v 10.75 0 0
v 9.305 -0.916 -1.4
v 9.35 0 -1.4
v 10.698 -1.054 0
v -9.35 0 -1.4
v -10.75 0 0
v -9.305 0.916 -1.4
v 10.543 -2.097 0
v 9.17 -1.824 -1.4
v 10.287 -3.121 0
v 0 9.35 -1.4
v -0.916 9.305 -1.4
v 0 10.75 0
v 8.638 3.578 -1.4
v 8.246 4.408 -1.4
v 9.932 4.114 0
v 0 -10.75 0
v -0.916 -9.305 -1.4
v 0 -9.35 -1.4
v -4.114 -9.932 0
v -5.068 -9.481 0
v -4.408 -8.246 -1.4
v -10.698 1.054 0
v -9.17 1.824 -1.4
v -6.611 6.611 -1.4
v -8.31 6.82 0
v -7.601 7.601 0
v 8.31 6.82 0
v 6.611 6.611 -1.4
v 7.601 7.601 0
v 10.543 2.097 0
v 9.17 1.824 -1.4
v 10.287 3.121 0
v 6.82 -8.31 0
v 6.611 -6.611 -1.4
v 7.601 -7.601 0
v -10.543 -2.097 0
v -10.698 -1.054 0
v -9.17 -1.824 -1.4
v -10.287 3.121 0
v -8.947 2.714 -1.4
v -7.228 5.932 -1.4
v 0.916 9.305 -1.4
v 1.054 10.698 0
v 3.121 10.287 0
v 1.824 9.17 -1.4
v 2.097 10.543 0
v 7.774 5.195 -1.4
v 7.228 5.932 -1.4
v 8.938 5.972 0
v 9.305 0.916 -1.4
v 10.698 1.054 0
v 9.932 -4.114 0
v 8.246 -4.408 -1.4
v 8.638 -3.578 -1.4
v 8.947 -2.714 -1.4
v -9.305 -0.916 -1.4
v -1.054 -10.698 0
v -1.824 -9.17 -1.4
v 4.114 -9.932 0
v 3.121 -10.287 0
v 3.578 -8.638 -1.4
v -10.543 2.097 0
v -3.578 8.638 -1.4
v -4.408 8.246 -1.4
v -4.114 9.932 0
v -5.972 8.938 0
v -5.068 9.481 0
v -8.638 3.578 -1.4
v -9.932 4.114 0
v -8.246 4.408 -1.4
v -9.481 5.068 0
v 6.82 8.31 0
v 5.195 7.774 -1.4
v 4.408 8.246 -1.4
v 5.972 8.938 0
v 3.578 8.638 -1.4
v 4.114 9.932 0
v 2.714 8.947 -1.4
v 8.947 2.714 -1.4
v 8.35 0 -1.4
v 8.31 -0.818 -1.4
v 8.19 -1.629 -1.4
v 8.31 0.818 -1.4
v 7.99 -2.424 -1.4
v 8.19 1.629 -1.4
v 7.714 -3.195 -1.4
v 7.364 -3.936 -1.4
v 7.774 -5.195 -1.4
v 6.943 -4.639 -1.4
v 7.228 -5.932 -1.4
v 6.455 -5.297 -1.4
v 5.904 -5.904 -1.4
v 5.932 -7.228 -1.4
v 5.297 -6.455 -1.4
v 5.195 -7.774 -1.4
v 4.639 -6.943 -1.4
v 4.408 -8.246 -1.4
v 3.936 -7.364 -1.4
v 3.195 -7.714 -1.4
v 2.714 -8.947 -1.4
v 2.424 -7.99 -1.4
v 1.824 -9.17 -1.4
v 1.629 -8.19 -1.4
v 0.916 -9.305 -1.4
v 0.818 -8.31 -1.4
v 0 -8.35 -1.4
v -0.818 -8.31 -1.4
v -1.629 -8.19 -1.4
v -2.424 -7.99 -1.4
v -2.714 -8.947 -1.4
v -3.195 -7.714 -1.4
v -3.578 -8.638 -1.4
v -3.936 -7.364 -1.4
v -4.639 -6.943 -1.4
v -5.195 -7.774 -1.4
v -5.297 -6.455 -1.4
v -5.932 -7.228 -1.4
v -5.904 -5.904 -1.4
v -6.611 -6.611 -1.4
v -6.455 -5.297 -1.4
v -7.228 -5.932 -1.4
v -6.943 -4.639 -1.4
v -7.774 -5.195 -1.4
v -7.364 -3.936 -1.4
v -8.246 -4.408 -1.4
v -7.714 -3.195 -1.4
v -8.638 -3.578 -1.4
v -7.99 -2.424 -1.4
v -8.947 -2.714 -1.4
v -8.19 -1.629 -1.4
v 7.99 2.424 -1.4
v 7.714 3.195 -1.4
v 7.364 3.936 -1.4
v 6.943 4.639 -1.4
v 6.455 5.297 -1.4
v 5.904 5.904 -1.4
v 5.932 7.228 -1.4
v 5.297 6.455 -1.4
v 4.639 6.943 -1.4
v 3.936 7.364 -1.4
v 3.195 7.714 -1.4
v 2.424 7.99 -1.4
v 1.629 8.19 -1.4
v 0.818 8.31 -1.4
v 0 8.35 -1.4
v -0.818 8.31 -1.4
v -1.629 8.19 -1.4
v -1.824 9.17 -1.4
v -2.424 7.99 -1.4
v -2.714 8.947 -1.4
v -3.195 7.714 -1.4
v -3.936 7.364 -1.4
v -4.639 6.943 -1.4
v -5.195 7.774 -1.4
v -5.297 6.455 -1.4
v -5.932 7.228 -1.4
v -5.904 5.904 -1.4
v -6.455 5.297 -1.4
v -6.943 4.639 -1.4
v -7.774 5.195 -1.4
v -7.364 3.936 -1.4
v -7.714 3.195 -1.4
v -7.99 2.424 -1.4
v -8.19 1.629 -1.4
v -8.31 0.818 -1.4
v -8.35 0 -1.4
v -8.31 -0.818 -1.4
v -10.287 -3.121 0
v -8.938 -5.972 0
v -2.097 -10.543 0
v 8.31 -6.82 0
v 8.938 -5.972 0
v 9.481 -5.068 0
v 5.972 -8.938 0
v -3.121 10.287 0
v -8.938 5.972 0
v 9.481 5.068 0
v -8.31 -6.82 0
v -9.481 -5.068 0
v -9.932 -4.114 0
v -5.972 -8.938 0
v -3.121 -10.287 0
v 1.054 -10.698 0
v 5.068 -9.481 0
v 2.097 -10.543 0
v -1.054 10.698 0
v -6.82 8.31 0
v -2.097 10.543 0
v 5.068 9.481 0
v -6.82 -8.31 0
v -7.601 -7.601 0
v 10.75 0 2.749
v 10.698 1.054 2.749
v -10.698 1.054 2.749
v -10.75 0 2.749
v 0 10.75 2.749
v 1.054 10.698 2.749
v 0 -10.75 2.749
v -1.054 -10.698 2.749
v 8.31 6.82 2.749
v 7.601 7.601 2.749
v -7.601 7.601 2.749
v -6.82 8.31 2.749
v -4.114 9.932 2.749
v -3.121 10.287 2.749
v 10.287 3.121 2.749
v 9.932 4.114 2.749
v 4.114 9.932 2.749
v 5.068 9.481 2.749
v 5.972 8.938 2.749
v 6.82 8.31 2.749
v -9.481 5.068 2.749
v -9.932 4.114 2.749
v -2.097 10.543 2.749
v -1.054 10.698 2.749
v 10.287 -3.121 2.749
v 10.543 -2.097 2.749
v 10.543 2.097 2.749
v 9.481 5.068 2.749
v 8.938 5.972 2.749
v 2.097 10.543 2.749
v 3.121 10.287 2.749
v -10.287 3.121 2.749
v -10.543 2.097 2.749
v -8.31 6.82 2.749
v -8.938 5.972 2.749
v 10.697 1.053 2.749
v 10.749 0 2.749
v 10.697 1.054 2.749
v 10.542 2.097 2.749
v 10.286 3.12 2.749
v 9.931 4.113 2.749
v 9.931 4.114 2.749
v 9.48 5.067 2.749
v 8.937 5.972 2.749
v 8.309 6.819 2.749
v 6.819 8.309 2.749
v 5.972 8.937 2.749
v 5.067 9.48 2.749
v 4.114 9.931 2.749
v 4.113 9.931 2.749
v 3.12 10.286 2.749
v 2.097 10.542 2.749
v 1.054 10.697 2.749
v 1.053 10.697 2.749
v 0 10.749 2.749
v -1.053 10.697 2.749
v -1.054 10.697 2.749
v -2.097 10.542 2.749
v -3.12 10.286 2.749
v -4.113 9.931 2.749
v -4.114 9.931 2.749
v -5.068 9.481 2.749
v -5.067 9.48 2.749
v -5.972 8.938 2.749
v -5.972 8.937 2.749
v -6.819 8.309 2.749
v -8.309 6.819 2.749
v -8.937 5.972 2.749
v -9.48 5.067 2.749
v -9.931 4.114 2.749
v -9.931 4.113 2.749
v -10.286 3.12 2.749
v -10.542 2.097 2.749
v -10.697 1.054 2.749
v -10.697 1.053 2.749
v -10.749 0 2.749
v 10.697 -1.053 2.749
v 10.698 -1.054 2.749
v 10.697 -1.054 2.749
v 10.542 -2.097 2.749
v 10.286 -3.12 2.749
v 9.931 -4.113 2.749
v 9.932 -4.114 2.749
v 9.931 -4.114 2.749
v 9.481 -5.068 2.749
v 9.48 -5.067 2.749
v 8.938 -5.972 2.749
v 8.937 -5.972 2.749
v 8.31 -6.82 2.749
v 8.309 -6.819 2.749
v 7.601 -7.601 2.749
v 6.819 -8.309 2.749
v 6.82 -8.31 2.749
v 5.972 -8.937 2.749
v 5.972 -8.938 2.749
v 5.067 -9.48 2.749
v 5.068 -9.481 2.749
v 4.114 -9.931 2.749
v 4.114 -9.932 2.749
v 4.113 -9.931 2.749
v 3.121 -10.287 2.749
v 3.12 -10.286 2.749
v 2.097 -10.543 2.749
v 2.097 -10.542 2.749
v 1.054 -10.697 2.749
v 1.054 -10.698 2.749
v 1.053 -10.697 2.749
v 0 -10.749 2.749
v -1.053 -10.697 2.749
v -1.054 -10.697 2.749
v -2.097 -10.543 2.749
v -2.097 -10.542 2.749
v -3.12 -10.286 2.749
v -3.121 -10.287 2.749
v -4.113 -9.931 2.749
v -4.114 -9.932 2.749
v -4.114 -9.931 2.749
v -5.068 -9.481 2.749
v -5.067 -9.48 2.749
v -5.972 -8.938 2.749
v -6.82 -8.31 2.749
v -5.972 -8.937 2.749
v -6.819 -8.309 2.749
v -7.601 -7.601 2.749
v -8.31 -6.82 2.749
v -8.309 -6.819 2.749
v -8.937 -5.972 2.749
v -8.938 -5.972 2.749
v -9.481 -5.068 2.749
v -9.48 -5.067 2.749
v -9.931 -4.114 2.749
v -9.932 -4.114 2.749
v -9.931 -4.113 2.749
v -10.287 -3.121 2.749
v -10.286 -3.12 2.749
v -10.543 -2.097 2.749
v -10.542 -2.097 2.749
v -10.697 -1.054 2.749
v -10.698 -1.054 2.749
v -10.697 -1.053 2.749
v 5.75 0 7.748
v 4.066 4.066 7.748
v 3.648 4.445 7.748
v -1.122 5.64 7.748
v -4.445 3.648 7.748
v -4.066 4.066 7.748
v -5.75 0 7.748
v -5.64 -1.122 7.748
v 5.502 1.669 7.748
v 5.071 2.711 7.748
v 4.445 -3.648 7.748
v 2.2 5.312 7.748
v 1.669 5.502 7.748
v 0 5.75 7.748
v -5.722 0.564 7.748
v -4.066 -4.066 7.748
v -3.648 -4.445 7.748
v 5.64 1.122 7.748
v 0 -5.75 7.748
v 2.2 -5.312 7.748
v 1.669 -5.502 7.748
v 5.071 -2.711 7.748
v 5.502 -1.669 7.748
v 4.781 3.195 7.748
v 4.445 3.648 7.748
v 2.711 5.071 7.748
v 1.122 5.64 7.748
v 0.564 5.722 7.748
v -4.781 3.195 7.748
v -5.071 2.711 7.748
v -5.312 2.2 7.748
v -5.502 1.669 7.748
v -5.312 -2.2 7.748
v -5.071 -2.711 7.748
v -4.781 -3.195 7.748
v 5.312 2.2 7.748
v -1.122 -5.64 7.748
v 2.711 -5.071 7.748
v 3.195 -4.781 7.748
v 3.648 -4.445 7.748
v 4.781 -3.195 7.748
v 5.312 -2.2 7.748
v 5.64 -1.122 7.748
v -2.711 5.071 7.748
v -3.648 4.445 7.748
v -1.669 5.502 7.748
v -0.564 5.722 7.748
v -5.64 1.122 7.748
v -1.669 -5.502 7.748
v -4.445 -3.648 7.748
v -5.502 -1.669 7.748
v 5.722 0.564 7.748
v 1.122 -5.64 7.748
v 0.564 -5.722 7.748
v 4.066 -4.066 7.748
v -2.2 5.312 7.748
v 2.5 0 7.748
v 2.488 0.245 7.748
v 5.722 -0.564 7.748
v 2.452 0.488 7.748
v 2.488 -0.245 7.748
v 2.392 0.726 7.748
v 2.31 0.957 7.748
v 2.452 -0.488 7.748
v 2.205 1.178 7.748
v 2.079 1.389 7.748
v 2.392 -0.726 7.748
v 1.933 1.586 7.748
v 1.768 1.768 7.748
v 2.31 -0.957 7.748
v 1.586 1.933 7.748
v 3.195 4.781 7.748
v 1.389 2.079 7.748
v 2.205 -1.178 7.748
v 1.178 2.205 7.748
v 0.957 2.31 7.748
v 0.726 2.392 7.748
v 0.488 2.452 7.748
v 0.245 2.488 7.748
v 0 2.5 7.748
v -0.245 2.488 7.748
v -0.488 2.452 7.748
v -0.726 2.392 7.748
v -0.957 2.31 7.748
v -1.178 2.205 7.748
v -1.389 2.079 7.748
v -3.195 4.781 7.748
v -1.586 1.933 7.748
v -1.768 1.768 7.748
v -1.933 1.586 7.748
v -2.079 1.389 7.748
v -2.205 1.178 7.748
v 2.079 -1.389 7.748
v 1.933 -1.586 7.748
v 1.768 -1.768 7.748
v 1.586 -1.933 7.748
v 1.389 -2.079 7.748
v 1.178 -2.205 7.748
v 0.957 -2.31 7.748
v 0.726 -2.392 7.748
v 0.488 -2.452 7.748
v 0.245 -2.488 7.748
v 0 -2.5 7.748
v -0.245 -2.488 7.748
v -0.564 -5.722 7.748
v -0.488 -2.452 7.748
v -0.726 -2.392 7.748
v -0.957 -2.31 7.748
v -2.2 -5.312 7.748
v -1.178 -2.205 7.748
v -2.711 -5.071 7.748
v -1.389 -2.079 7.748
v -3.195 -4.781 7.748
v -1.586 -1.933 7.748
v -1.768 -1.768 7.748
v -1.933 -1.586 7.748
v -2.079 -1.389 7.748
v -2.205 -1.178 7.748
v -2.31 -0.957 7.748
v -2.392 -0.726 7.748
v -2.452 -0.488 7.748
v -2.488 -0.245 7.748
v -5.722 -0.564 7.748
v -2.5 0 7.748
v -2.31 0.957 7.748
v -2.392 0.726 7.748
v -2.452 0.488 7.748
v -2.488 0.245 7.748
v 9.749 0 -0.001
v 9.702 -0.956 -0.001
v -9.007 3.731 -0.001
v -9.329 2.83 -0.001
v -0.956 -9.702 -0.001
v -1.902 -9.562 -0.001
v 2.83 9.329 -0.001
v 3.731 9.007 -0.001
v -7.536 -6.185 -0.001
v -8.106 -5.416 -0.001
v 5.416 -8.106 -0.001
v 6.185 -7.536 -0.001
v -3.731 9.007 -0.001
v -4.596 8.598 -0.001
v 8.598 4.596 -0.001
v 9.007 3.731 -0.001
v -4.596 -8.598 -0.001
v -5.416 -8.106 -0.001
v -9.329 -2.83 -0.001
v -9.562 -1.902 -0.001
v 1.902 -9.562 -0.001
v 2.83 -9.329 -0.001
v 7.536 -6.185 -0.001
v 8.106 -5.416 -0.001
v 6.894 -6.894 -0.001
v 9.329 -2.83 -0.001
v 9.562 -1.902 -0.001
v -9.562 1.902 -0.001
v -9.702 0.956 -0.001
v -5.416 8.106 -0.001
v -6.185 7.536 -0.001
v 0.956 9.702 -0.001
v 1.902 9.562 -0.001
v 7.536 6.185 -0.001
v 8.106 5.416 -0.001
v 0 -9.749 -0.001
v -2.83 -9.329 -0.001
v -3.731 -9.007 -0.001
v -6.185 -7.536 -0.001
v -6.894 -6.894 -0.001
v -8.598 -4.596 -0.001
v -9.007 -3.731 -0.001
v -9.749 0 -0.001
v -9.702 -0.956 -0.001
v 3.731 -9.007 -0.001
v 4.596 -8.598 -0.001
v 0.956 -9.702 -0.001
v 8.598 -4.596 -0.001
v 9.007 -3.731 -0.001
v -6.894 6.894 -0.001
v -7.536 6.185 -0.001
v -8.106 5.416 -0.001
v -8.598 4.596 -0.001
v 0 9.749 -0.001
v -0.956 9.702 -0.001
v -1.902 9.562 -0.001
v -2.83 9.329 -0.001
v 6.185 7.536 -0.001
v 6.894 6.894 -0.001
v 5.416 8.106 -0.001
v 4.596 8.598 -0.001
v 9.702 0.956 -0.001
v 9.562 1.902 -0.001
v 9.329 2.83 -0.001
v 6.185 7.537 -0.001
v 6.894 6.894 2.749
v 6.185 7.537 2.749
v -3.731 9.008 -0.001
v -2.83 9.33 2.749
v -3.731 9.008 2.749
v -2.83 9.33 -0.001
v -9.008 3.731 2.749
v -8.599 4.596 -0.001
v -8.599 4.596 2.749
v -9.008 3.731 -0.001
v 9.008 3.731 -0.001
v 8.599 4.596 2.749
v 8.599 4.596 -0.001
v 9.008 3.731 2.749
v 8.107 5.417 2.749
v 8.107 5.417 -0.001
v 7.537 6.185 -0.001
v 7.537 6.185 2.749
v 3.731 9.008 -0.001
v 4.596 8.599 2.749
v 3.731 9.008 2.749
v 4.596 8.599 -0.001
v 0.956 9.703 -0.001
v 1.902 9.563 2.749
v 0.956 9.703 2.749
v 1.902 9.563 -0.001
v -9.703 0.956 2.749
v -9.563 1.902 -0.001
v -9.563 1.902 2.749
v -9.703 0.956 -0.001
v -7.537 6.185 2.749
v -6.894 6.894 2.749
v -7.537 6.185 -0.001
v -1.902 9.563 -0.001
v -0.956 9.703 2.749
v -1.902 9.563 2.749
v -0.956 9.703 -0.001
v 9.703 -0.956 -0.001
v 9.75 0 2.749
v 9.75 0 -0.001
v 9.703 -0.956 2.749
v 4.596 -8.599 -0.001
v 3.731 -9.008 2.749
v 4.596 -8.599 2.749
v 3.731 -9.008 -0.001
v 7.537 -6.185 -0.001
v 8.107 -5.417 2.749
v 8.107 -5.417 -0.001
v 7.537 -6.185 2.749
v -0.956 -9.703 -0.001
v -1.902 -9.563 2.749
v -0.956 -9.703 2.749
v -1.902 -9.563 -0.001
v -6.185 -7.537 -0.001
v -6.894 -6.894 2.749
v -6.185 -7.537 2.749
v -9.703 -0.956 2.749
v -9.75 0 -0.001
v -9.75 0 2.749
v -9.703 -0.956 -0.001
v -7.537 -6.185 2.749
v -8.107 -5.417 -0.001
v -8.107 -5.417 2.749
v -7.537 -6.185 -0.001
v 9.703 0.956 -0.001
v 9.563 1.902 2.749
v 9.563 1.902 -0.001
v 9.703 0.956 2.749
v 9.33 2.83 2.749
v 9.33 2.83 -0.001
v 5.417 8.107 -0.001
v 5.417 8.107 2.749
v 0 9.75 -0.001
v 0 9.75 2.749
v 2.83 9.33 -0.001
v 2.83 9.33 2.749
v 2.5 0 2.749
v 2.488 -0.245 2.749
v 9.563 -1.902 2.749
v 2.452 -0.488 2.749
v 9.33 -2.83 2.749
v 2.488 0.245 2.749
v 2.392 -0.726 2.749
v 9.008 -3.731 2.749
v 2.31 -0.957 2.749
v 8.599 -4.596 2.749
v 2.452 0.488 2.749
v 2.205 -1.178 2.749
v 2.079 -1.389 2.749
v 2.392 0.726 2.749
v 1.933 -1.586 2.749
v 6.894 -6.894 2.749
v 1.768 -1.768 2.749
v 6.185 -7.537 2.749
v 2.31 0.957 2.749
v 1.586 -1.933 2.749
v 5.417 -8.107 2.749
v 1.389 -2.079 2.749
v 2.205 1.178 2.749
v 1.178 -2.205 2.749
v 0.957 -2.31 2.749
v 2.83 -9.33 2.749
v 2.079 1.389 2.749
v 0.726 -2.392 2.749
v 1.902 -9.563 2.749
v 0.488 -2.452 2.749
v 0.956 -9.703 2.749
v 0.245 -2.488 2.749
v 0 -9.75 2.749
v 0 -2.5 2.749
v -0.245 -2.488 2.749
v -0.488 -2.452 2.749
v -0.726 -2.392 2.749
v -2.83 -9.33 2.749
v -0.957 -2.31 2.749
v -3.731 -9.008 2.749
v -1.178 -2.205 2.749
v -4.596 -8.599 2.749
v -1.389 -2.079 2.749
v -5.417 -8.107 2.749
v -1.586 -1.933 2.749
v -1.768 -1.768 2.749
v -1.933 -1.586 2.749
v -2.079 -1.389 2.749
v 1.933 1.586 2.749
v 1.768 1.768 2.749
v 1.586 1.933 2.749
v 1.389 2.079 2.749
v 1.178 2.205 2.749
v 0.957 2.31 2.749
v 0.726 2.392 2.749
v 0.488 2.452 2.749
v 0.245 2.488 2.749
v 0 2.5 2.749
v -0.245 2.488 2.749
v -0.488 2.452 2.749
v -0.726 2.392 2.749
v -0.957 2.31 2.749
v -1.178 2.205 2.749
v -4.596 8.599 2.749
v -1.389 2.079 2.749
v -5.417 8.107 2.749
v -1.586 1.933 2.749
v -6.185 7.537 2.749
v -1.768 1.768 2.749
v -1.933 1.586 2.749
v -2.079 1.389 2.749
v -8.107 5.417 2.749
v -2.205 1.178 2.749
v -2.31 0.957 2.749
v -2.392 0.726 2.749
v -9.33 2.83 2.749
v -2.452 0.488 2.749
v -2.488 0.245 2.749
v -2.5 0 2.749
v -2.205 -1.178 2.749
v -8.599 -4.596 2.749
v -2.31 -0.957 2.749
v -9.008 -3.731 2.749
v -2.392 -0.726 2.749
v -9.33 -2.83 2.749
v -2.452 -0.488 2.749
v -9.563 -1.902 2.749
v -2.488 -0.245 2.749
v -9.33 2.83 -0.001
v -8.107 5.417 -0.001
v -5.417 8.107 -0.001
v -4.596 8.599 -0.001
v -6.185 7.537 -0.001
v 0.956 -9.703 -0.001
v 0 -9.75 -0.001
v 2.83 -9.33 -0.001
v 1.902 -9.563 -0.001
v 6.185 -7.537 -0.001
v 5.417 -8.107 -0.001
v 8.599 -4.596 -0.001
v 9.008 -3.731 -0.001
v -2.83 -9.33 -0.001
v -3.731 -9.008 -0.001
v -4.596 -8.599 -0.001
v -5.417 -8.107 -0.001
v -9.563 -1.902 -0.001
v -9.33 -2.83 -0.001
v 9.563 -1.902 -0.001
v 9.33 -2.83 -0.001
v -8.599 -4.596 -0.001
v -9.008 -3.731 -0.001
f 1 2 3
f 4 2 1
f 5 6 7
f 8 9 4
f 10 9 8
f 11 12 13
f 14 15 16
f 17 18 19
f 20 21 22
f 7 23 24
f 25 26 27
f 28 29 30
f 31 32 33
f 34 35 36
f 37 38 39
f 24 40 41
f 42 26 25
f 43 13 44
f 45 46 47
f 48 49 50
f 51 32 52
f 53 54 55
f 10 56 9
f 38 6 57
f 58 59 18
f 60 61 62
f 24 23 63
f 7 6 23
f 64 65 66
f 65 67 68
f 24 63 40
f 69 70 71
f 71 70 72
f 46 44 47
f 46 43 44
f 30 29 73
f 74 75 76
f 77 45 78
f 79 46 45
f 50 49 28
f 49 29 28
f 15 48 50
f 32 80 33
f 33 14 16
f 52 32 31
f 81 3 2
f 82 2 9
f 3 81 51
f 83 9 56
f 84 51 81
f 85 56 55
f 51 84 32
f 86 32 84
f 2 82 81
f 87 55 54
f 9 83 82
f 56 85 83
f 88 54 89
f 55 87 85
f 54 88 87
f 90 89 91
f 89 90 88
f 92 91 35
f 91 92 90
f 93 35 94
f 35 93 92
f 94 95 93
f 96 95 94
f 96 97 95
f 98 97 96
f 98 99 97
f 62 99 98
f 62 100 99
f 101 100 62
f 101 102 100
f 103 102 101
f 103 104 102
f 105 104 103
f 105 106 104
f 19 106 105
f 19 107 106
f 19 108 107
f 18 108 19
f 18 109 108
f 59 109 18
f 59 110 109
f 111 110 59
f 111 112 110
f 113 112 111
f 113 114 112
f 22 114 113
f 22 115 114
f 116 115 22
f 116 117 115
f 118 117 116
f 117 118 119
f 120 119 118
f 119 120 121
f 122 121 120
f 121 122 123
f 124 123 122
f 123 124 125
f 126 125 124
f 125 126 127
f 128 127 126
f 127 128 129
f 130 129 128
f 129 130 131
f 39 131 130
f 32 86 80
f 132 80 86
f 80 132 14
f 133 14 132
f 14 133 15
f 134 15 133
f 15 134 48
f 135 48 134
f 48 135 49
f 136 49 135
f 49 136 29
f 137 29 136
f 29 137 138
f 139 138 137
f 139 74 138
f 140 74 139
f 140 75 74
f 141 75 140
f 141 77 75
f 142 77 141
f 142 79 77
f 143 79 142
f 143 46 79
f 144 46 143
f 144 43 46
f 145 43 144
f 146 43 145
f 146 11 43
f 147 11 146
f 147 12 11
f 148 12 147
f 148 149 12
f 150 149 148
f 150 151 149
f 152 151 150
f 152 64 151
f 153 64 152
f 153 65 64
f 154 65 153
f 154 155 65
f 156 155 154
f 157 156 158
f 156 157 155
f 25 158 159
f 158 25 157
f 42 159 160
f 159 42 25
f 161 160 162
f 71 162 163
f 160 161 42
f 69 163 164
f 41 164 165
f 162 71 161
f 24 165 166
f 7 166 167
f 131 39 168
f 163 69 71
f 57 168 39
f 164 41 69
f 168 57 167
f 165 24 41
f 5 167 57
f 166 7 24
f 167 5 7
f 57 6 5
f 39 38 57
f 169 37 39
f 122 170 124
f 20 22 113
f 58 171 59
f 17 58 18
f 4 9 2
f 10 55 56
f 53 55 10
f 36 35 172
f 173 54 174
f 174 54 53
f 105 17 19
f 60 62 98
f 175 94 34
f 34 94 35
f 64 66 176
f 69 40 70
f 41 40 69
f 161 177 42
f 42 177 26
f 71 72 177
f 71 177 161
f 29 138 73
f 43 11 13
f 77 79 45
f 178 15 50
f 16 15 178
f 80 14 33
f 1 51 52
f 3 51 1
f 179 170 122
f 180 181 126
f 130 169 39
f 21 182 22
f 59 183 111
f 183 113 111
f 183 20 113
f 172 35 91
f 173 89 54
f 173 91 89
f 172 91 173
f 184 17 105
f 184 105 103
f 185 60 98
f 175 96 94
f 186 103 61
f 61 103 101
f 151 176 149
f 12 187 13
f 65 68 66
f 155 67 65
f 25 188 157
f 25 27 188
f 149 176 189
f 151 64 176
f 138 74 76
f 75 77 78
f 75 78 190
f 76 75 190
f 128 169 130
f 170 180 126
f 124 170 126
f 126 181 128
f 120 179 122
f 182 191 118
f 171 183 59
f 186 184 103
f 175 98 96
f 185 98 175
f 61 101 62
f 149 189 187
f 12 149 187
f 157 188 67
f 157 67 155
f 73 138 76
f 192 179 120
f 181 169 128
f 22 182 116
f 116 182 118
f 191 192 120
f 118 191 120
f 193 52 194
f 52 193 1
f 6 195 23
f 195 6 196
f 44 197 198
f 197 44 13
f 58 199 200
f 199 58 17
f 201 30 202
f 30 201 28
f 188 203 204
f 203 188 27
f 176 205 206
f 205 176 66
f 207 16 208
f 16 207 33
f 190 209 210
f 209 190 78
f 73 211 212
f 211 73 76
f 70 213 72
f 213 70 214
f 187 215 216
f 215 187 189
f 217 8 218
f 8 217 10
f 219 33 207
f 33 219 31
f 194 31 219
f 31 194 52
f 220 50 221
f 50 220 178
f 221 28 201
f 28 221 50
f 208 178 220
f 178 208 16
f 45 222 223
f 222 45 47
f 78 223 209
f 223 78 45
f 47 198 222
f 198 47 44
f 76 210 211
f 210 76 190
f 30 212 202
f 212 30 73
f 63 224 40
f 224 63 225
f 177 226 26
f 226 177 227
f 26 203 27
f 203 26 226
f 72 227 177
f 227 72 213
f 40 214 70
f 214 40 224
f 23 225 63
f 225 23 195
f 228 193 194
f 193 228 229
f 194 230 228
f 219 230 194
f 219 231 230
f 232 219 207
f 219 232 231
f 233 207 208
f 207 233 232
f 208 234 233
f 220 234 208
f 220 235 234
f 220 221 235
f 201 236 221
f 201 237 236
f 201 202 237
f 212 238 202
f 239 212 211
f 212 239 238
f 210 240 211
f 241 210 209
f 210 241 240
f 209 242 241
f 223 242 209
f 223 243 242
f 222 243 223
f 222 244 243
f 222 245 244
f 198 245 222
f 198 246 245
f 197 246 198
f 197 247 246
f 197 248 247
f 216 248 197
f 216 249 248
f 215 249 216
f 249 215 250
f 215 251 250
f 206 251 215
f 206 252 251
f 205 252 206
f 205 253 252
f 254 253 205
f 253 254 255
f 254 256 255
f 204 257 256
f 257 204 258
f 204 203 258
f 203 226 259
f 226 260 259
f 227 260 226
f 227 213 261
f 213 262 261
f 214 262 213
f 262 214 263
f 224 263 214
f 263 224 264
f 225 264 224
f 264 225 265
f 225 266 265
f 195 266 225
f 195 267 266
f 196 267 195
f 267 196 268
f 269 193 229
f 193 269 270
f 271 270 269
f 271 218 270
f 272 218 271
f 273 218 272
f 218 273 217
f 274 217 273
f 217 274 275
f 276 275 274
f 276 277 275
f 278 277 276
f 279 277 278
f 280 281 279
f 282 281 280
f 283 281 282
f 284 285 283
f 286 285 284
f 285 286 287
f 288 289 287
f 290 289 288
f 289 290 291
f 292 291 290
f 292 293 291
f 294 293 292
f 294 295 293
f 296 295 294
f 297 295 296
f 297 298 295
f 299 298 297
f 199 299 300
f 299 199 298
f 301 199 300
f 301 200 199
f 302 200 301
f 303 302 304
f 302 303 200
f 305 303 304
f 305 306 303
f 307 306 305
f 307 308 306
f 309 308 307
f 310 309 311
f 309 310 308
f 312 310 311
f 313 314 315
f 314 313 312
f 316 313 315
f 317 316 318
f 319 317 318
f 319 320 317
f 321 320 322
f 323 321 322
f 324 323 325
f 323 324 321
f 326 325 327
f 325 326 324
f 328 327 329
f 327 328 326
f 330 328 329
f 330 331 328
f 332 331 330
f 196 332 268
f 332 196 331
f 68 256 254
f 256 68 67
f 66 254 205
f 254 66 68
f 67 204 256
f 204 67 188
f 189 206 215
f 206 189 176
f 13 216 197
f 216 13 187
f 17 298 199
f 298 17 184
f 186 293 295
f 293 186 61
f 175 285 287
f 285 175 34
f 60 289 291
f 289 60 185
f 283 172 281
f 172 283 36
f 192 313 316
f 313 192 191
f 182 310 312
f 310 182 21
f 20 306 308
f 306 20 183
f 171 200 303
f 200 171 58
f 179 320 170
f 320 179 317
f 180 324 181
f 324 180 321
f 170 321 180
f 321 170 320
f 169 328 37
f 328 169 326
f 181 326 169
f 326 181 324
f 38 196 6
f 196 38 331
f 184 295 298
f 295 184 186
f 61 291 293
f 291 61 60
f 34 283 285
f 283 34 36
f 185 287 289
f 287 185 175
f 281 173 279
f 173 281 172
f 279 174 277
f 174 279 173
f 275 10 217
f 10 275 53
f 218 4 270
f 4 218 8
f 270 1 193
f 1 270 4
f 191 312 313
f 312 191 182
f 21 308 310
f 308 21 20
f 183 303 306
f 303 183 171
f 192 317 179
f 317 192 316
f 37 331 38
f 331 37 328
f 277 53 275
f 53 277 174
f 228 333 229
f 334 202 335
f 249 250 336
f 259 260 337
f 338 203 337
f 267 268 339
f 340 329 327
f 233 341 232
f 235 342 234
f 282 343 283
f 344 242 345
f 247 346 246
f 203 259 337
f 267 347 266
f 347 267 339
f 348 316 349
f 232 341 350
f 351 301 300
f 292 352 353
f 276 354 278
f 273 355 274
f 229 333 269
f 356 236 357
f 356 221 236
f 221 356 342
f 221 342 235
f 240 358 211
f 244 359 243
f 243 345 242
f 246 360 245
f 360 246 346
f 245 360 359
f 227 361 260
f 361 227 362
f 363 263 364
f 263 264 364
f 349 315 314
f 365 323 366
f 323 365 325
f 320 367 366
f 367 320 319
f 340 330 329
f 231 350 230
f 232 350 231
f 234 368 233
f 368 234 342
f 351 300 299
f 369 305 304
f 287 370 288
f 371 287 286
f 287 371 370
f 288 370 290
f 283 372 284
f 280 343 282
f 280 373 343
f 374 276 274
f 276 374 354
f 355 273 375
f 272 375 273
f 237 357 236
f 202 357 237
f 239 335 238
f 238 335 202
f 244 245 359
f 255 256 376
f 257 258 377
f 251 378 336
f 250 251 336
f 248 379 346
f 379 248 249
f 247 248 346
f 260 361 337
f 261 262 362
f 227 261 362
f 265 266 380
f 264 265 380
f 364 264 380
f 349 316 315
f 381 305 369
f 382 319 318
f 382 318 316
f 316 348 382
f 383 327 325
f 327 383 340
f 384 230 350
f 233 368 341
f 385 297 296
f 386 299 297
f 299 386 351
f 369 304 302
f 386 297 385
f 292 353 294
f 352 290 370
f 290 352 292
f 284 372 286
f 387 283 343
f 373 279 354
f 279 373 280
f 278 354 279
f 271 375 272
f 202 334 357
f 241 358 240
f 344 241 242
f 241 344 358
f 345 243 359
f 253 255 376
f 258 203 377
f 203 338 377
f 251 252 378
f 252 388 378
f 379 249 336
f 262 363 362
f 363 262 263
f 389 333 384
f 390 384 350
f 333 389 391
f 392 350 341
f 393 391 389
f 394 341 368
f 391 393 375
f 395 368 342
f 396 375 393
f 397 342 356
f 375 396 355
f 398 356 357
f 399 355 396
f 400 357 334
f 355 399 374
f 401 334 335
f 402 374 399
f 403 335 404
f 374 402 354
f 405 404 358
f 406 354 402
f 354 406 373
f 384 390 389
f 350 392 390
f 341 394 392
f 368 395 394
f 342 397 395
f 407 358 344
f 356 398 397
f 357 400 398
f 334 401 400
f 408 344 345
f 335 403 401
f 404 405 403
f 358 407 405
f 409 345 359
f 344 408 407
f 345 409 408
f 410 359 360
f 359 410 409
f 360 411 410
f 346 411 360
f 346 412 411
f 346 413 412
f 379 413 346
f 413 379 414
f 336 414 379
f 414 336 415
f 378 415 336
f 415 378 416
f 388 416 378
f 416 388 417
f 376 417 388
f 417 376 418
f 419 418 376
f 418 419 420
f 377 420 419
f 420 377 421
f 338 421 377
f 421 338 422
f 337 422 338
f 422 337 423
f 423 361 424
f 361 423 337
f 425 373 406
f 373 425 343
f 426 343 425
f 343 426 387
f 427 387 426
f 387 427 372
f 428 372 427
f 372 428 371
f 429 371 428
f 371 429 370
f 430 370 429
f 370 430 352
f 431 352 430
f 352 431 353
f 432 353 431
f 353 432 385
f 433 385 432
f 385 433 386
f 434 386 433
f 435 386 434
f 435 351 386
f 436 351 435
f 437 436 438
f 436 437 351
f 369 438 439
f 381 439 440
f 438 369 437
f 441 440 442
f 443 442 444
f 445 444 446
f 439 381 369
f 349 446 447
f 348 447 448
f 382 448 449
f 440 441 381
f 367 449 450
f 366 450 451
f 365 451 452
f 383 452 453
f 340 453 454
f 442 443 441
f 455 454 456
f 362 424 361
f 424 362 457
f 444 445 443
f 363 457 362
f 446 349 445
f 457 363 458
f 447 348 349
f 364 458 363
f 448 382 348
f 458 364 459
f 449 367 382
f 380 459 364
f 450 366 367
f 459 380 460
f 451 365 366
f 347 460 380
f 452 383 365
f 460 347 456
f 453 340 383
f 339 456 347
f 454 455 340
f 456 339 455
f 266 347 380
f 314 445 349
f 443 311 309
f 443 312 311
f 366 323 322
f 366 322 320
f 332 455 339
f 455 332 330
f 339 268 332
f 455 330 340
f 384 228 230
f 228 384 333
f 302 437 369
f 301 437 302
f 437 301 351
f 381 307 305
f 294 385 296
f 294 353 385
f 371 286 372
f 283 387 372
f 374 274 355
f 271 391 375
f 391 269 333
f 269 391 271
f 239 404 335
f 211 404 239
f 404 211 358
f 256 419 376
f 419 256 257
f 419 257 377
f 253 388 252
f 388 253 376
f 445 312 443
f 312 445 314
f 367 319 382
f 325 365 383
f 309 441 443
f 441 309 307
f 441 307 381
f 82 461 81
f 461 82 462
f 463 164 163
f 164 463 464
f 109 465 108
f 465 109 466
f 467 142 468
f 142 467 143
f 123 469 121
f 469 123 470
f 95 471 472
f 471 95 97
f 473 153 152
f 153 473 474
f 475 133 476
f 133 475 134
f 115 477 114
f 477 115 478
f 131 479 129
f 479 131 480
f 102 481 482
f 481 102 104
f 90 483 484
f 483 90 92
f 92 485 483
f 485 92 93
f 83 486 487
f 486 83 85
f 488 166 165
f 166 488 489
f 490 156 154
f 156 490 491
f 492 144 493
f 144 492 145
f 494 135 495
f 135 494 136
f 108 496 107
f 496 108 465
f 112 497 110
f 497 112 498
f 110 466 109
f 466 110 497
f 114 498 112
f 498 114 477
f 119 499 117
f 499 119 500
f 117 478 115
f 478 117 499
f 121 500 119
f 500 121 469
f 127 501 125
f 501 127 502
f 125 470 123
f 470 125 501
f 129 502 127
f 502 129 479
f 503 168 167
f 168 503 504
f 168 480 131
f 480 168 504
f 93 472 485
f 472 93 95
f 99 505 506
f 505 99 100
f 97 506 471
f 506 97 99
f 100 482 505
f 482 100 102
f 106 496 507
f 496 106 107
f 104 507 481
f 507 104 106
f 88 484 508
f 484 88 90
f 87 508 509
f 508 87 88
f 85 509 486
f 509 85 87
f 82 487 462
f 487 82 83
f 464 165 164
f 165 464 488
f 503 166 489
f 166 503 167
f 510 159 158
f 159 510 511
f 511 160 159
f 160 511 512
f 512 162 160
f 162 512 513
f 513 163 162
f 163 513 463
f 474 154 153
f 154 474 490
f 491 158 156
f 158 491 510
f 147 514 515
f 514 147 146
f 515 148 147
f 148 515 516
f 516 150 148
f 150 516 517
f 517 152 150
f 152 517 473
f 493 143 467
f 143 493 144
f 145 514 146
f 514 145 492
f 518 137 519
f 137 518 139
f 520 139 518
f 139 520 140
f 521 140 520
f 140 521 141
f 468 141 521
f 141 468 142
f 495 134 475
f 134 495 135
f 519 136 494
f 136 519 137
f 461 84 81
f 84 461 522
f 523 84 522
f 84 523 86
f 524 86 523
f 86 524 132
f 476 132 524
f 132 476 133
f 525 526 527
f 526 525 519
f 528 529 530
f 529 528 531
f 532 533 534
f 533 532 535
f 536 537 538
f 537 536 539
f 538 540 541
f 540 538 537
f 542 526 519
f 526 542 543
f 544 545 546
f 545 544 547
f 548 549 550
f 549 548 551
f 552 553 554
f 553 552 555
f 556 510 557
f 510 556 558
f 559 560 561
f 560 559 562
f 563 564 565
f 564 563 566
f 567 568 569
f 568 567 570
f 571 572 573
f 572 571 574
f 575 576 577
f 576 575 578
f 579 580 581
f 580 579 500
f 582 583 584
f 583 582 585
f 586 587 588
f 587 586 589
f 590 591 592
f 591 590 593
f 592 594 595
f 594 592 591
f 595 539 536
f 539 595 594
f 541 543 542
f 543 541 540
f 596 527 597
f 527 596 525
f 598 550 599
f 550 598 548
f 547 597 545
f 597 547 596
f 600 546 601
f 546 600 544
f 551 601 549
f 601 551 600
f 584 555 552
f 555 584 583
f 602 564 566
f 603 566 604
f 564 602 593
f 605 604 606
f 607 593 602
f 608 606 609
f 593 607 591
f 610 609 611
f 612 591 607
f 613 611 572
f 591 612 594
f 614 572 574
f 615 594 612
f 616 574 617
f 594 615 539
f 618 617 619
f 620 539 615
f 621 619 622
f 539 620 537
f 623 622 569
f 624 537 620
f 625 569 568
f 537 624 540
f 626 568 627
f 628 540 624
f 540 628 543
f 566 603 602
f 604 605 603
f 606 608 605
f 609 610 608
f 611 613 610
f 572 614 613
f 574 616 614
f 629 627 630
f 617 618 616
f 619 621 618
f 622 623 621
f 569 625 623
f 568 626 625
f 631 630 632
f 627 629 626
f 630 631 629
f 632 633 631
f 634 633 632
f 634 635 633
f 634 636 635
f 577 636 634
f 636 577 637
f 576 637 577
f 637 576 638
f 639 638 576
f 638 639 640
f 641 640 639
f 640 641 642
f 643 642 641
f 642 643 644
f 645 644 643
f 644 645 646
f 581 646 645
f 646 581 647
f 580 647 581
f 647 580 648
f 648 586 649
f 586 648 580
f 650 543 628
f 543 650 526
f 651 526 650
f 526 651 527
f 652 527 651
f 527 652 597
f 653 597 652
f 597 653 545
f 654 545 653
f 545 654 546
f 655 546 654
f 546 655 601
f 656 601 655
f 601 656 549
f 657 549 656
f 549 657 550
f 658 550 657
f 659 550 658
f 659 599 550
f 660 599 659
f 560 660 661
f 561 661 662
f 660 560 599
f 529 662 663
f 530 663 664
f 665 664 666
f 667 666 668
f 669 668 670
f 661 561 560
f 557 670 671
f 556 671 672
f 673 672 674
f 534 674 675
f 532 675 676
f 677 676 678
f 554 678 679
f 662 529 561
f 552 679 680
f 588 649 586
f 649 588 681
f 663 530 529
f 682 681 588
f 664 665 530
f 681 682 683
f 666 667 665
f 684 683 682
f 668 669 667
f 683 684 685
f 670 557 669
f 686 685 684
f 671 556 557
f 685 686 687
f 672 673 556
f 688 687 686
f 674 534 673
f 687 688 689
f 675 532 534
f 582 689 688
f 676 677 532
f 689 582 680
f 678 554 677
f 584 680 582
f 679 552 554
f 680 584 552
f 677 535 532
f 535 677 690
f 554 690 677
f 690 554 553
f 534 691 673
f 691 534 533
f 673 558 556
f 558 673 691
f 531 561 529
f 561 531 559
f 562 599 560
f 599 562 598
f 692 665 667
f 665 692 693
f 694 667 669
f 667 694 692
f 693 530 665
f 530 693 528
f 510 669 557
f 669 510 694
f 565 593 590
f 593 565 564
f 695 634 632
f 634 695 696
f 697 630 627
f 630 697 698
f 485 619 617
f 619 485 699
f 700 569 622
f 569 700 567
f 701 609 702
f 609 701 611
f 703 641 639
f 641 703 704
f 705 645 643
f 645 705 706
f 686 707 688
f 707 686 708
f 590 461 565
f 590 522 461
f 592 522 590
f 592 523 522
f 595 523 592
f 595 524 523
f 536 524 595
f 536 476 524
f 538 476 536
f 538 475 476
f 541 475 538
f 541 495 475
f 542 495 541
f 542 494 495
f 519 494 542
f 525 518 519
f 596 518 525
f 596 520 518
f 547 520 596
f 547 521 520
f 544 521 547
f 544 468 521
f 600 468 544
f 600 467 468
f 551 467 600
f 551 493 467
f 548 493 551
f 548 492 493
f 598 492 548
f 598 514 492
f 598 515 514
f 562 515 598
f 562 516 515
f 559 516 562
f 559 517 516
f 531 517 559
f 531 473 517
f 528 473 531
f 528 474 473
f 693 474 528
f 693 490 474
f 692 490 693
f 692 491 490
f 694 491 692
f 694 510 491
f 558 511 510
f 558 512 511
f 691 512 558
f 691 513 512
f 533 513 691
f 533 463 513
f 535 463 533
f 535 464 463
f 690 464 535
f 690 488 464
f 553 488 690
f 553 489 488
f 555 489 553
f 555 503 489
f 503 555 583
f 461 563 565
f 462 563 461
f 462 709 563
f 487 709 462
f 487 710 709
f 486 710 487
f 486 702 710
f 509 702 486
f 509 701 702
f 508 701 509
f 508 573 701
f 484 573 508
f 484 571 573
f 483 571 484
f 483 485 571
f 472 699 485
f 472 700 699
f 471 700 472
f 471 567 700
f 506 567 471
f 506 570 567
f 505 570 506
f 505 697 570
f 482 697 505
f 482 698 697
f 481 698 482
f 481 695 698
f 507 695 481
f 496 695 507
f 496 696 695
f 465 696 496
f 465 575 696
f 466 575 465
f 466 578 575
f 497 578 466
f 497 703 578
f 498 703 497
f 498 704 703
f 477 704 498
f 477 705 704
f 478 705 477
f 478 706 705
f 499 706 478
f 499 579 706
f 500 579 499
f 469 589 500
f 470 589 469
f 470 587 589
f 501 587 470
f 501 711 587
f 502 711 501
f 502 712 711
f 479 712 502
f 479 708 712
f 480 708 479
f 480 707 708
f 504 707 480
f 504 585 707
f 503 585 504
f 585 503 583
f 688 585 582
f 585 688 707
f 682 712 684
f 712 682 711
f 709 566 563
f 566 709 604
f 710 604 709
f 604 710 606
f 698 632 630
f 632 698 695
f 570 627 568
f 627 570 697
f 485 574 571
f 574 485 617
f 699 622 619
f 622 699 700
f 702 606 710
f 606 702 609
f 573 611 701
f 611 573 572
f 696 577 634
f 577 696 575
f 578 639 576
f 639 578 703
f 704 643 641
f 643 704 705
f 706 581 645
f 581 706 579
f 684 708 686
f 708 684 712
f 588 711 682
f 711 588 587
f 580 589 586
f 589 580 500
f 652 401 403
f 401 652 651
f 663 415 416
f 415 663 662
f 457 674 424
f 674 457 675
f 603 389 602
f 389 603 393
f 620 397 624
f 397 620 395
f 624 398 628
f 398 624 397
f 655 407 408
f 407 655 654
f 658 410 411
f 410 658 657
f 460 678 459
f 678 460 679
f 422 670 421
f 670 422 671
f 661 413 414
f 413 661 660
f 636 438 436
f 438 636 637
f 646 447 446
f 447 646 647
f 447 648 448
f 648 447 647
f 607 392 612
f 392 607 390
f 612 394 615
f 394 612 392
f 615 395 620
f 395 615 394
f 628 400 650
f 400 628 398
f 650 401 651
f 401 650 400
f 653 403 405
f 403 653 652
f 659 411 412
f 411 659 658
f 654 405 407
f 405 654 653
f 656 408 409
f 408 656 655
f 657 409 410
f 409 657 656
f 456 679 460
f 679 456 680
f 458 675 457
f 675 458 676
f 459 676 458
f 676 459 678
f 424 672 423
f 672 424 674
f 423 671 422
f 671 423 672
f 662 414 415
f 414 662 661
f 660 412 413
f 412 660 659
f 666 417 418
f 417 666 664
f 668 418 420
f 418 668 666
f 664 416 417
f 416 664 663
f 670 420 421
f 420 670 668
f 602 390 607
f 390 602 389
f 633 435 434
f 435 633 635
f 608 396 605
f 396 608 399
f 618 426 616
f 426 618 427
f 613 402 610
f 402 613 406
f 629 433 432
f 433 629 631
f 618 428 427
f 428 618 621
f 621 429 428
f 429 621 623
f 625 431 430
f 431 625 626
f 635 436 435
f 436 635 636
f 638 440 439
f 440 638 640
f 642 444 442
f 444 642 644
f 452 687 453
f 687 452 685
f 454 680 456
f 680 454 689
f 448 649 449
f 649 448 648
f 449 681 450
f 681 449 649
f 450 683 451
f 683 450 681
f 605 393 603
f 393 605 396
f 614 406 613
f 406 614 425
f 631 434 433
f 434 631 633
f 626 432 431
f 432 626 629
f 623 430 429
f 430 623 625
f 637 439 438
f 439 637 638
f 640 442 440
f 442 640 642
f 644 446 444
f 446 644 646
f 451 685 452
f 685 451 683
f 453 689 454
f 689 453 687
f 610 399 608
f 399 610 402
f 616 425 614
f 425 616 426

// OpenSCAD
$fn = 64;
let
(
    roofHeight = 5,
    diameter = 21.5,
    attachmentDiameter = 5,
    extentionHeight = 1.4
){
    difference()
    {
        union()
        {
            rotate([180, 0, 0])
                cylinder(d1 = diameter, d2 = diameter - extentionHeight * 2, h = extentionHeight);
            cylinder(d = diameter, h = 2.749);
            translate([0, 0, 2.748])
                cylinder(d1 = diameter, d2 = diameter - roofHeight * 2, h = roofHeight);
        }
        KnobCutout();
        cylinder(d = attachmentDiameter, h = 100);
    }
}

module KnobCutout(height = 2.75, diameter = 19.5, angle = 1)
{
    
    rotate([180, 0, 0])
        cylinder(d1 = diameter, d2 = 0, h = diameter / angle * 0.5);
    translate([0, 0, -0.001])
    cylinder(d = diameter, h = height);
}
